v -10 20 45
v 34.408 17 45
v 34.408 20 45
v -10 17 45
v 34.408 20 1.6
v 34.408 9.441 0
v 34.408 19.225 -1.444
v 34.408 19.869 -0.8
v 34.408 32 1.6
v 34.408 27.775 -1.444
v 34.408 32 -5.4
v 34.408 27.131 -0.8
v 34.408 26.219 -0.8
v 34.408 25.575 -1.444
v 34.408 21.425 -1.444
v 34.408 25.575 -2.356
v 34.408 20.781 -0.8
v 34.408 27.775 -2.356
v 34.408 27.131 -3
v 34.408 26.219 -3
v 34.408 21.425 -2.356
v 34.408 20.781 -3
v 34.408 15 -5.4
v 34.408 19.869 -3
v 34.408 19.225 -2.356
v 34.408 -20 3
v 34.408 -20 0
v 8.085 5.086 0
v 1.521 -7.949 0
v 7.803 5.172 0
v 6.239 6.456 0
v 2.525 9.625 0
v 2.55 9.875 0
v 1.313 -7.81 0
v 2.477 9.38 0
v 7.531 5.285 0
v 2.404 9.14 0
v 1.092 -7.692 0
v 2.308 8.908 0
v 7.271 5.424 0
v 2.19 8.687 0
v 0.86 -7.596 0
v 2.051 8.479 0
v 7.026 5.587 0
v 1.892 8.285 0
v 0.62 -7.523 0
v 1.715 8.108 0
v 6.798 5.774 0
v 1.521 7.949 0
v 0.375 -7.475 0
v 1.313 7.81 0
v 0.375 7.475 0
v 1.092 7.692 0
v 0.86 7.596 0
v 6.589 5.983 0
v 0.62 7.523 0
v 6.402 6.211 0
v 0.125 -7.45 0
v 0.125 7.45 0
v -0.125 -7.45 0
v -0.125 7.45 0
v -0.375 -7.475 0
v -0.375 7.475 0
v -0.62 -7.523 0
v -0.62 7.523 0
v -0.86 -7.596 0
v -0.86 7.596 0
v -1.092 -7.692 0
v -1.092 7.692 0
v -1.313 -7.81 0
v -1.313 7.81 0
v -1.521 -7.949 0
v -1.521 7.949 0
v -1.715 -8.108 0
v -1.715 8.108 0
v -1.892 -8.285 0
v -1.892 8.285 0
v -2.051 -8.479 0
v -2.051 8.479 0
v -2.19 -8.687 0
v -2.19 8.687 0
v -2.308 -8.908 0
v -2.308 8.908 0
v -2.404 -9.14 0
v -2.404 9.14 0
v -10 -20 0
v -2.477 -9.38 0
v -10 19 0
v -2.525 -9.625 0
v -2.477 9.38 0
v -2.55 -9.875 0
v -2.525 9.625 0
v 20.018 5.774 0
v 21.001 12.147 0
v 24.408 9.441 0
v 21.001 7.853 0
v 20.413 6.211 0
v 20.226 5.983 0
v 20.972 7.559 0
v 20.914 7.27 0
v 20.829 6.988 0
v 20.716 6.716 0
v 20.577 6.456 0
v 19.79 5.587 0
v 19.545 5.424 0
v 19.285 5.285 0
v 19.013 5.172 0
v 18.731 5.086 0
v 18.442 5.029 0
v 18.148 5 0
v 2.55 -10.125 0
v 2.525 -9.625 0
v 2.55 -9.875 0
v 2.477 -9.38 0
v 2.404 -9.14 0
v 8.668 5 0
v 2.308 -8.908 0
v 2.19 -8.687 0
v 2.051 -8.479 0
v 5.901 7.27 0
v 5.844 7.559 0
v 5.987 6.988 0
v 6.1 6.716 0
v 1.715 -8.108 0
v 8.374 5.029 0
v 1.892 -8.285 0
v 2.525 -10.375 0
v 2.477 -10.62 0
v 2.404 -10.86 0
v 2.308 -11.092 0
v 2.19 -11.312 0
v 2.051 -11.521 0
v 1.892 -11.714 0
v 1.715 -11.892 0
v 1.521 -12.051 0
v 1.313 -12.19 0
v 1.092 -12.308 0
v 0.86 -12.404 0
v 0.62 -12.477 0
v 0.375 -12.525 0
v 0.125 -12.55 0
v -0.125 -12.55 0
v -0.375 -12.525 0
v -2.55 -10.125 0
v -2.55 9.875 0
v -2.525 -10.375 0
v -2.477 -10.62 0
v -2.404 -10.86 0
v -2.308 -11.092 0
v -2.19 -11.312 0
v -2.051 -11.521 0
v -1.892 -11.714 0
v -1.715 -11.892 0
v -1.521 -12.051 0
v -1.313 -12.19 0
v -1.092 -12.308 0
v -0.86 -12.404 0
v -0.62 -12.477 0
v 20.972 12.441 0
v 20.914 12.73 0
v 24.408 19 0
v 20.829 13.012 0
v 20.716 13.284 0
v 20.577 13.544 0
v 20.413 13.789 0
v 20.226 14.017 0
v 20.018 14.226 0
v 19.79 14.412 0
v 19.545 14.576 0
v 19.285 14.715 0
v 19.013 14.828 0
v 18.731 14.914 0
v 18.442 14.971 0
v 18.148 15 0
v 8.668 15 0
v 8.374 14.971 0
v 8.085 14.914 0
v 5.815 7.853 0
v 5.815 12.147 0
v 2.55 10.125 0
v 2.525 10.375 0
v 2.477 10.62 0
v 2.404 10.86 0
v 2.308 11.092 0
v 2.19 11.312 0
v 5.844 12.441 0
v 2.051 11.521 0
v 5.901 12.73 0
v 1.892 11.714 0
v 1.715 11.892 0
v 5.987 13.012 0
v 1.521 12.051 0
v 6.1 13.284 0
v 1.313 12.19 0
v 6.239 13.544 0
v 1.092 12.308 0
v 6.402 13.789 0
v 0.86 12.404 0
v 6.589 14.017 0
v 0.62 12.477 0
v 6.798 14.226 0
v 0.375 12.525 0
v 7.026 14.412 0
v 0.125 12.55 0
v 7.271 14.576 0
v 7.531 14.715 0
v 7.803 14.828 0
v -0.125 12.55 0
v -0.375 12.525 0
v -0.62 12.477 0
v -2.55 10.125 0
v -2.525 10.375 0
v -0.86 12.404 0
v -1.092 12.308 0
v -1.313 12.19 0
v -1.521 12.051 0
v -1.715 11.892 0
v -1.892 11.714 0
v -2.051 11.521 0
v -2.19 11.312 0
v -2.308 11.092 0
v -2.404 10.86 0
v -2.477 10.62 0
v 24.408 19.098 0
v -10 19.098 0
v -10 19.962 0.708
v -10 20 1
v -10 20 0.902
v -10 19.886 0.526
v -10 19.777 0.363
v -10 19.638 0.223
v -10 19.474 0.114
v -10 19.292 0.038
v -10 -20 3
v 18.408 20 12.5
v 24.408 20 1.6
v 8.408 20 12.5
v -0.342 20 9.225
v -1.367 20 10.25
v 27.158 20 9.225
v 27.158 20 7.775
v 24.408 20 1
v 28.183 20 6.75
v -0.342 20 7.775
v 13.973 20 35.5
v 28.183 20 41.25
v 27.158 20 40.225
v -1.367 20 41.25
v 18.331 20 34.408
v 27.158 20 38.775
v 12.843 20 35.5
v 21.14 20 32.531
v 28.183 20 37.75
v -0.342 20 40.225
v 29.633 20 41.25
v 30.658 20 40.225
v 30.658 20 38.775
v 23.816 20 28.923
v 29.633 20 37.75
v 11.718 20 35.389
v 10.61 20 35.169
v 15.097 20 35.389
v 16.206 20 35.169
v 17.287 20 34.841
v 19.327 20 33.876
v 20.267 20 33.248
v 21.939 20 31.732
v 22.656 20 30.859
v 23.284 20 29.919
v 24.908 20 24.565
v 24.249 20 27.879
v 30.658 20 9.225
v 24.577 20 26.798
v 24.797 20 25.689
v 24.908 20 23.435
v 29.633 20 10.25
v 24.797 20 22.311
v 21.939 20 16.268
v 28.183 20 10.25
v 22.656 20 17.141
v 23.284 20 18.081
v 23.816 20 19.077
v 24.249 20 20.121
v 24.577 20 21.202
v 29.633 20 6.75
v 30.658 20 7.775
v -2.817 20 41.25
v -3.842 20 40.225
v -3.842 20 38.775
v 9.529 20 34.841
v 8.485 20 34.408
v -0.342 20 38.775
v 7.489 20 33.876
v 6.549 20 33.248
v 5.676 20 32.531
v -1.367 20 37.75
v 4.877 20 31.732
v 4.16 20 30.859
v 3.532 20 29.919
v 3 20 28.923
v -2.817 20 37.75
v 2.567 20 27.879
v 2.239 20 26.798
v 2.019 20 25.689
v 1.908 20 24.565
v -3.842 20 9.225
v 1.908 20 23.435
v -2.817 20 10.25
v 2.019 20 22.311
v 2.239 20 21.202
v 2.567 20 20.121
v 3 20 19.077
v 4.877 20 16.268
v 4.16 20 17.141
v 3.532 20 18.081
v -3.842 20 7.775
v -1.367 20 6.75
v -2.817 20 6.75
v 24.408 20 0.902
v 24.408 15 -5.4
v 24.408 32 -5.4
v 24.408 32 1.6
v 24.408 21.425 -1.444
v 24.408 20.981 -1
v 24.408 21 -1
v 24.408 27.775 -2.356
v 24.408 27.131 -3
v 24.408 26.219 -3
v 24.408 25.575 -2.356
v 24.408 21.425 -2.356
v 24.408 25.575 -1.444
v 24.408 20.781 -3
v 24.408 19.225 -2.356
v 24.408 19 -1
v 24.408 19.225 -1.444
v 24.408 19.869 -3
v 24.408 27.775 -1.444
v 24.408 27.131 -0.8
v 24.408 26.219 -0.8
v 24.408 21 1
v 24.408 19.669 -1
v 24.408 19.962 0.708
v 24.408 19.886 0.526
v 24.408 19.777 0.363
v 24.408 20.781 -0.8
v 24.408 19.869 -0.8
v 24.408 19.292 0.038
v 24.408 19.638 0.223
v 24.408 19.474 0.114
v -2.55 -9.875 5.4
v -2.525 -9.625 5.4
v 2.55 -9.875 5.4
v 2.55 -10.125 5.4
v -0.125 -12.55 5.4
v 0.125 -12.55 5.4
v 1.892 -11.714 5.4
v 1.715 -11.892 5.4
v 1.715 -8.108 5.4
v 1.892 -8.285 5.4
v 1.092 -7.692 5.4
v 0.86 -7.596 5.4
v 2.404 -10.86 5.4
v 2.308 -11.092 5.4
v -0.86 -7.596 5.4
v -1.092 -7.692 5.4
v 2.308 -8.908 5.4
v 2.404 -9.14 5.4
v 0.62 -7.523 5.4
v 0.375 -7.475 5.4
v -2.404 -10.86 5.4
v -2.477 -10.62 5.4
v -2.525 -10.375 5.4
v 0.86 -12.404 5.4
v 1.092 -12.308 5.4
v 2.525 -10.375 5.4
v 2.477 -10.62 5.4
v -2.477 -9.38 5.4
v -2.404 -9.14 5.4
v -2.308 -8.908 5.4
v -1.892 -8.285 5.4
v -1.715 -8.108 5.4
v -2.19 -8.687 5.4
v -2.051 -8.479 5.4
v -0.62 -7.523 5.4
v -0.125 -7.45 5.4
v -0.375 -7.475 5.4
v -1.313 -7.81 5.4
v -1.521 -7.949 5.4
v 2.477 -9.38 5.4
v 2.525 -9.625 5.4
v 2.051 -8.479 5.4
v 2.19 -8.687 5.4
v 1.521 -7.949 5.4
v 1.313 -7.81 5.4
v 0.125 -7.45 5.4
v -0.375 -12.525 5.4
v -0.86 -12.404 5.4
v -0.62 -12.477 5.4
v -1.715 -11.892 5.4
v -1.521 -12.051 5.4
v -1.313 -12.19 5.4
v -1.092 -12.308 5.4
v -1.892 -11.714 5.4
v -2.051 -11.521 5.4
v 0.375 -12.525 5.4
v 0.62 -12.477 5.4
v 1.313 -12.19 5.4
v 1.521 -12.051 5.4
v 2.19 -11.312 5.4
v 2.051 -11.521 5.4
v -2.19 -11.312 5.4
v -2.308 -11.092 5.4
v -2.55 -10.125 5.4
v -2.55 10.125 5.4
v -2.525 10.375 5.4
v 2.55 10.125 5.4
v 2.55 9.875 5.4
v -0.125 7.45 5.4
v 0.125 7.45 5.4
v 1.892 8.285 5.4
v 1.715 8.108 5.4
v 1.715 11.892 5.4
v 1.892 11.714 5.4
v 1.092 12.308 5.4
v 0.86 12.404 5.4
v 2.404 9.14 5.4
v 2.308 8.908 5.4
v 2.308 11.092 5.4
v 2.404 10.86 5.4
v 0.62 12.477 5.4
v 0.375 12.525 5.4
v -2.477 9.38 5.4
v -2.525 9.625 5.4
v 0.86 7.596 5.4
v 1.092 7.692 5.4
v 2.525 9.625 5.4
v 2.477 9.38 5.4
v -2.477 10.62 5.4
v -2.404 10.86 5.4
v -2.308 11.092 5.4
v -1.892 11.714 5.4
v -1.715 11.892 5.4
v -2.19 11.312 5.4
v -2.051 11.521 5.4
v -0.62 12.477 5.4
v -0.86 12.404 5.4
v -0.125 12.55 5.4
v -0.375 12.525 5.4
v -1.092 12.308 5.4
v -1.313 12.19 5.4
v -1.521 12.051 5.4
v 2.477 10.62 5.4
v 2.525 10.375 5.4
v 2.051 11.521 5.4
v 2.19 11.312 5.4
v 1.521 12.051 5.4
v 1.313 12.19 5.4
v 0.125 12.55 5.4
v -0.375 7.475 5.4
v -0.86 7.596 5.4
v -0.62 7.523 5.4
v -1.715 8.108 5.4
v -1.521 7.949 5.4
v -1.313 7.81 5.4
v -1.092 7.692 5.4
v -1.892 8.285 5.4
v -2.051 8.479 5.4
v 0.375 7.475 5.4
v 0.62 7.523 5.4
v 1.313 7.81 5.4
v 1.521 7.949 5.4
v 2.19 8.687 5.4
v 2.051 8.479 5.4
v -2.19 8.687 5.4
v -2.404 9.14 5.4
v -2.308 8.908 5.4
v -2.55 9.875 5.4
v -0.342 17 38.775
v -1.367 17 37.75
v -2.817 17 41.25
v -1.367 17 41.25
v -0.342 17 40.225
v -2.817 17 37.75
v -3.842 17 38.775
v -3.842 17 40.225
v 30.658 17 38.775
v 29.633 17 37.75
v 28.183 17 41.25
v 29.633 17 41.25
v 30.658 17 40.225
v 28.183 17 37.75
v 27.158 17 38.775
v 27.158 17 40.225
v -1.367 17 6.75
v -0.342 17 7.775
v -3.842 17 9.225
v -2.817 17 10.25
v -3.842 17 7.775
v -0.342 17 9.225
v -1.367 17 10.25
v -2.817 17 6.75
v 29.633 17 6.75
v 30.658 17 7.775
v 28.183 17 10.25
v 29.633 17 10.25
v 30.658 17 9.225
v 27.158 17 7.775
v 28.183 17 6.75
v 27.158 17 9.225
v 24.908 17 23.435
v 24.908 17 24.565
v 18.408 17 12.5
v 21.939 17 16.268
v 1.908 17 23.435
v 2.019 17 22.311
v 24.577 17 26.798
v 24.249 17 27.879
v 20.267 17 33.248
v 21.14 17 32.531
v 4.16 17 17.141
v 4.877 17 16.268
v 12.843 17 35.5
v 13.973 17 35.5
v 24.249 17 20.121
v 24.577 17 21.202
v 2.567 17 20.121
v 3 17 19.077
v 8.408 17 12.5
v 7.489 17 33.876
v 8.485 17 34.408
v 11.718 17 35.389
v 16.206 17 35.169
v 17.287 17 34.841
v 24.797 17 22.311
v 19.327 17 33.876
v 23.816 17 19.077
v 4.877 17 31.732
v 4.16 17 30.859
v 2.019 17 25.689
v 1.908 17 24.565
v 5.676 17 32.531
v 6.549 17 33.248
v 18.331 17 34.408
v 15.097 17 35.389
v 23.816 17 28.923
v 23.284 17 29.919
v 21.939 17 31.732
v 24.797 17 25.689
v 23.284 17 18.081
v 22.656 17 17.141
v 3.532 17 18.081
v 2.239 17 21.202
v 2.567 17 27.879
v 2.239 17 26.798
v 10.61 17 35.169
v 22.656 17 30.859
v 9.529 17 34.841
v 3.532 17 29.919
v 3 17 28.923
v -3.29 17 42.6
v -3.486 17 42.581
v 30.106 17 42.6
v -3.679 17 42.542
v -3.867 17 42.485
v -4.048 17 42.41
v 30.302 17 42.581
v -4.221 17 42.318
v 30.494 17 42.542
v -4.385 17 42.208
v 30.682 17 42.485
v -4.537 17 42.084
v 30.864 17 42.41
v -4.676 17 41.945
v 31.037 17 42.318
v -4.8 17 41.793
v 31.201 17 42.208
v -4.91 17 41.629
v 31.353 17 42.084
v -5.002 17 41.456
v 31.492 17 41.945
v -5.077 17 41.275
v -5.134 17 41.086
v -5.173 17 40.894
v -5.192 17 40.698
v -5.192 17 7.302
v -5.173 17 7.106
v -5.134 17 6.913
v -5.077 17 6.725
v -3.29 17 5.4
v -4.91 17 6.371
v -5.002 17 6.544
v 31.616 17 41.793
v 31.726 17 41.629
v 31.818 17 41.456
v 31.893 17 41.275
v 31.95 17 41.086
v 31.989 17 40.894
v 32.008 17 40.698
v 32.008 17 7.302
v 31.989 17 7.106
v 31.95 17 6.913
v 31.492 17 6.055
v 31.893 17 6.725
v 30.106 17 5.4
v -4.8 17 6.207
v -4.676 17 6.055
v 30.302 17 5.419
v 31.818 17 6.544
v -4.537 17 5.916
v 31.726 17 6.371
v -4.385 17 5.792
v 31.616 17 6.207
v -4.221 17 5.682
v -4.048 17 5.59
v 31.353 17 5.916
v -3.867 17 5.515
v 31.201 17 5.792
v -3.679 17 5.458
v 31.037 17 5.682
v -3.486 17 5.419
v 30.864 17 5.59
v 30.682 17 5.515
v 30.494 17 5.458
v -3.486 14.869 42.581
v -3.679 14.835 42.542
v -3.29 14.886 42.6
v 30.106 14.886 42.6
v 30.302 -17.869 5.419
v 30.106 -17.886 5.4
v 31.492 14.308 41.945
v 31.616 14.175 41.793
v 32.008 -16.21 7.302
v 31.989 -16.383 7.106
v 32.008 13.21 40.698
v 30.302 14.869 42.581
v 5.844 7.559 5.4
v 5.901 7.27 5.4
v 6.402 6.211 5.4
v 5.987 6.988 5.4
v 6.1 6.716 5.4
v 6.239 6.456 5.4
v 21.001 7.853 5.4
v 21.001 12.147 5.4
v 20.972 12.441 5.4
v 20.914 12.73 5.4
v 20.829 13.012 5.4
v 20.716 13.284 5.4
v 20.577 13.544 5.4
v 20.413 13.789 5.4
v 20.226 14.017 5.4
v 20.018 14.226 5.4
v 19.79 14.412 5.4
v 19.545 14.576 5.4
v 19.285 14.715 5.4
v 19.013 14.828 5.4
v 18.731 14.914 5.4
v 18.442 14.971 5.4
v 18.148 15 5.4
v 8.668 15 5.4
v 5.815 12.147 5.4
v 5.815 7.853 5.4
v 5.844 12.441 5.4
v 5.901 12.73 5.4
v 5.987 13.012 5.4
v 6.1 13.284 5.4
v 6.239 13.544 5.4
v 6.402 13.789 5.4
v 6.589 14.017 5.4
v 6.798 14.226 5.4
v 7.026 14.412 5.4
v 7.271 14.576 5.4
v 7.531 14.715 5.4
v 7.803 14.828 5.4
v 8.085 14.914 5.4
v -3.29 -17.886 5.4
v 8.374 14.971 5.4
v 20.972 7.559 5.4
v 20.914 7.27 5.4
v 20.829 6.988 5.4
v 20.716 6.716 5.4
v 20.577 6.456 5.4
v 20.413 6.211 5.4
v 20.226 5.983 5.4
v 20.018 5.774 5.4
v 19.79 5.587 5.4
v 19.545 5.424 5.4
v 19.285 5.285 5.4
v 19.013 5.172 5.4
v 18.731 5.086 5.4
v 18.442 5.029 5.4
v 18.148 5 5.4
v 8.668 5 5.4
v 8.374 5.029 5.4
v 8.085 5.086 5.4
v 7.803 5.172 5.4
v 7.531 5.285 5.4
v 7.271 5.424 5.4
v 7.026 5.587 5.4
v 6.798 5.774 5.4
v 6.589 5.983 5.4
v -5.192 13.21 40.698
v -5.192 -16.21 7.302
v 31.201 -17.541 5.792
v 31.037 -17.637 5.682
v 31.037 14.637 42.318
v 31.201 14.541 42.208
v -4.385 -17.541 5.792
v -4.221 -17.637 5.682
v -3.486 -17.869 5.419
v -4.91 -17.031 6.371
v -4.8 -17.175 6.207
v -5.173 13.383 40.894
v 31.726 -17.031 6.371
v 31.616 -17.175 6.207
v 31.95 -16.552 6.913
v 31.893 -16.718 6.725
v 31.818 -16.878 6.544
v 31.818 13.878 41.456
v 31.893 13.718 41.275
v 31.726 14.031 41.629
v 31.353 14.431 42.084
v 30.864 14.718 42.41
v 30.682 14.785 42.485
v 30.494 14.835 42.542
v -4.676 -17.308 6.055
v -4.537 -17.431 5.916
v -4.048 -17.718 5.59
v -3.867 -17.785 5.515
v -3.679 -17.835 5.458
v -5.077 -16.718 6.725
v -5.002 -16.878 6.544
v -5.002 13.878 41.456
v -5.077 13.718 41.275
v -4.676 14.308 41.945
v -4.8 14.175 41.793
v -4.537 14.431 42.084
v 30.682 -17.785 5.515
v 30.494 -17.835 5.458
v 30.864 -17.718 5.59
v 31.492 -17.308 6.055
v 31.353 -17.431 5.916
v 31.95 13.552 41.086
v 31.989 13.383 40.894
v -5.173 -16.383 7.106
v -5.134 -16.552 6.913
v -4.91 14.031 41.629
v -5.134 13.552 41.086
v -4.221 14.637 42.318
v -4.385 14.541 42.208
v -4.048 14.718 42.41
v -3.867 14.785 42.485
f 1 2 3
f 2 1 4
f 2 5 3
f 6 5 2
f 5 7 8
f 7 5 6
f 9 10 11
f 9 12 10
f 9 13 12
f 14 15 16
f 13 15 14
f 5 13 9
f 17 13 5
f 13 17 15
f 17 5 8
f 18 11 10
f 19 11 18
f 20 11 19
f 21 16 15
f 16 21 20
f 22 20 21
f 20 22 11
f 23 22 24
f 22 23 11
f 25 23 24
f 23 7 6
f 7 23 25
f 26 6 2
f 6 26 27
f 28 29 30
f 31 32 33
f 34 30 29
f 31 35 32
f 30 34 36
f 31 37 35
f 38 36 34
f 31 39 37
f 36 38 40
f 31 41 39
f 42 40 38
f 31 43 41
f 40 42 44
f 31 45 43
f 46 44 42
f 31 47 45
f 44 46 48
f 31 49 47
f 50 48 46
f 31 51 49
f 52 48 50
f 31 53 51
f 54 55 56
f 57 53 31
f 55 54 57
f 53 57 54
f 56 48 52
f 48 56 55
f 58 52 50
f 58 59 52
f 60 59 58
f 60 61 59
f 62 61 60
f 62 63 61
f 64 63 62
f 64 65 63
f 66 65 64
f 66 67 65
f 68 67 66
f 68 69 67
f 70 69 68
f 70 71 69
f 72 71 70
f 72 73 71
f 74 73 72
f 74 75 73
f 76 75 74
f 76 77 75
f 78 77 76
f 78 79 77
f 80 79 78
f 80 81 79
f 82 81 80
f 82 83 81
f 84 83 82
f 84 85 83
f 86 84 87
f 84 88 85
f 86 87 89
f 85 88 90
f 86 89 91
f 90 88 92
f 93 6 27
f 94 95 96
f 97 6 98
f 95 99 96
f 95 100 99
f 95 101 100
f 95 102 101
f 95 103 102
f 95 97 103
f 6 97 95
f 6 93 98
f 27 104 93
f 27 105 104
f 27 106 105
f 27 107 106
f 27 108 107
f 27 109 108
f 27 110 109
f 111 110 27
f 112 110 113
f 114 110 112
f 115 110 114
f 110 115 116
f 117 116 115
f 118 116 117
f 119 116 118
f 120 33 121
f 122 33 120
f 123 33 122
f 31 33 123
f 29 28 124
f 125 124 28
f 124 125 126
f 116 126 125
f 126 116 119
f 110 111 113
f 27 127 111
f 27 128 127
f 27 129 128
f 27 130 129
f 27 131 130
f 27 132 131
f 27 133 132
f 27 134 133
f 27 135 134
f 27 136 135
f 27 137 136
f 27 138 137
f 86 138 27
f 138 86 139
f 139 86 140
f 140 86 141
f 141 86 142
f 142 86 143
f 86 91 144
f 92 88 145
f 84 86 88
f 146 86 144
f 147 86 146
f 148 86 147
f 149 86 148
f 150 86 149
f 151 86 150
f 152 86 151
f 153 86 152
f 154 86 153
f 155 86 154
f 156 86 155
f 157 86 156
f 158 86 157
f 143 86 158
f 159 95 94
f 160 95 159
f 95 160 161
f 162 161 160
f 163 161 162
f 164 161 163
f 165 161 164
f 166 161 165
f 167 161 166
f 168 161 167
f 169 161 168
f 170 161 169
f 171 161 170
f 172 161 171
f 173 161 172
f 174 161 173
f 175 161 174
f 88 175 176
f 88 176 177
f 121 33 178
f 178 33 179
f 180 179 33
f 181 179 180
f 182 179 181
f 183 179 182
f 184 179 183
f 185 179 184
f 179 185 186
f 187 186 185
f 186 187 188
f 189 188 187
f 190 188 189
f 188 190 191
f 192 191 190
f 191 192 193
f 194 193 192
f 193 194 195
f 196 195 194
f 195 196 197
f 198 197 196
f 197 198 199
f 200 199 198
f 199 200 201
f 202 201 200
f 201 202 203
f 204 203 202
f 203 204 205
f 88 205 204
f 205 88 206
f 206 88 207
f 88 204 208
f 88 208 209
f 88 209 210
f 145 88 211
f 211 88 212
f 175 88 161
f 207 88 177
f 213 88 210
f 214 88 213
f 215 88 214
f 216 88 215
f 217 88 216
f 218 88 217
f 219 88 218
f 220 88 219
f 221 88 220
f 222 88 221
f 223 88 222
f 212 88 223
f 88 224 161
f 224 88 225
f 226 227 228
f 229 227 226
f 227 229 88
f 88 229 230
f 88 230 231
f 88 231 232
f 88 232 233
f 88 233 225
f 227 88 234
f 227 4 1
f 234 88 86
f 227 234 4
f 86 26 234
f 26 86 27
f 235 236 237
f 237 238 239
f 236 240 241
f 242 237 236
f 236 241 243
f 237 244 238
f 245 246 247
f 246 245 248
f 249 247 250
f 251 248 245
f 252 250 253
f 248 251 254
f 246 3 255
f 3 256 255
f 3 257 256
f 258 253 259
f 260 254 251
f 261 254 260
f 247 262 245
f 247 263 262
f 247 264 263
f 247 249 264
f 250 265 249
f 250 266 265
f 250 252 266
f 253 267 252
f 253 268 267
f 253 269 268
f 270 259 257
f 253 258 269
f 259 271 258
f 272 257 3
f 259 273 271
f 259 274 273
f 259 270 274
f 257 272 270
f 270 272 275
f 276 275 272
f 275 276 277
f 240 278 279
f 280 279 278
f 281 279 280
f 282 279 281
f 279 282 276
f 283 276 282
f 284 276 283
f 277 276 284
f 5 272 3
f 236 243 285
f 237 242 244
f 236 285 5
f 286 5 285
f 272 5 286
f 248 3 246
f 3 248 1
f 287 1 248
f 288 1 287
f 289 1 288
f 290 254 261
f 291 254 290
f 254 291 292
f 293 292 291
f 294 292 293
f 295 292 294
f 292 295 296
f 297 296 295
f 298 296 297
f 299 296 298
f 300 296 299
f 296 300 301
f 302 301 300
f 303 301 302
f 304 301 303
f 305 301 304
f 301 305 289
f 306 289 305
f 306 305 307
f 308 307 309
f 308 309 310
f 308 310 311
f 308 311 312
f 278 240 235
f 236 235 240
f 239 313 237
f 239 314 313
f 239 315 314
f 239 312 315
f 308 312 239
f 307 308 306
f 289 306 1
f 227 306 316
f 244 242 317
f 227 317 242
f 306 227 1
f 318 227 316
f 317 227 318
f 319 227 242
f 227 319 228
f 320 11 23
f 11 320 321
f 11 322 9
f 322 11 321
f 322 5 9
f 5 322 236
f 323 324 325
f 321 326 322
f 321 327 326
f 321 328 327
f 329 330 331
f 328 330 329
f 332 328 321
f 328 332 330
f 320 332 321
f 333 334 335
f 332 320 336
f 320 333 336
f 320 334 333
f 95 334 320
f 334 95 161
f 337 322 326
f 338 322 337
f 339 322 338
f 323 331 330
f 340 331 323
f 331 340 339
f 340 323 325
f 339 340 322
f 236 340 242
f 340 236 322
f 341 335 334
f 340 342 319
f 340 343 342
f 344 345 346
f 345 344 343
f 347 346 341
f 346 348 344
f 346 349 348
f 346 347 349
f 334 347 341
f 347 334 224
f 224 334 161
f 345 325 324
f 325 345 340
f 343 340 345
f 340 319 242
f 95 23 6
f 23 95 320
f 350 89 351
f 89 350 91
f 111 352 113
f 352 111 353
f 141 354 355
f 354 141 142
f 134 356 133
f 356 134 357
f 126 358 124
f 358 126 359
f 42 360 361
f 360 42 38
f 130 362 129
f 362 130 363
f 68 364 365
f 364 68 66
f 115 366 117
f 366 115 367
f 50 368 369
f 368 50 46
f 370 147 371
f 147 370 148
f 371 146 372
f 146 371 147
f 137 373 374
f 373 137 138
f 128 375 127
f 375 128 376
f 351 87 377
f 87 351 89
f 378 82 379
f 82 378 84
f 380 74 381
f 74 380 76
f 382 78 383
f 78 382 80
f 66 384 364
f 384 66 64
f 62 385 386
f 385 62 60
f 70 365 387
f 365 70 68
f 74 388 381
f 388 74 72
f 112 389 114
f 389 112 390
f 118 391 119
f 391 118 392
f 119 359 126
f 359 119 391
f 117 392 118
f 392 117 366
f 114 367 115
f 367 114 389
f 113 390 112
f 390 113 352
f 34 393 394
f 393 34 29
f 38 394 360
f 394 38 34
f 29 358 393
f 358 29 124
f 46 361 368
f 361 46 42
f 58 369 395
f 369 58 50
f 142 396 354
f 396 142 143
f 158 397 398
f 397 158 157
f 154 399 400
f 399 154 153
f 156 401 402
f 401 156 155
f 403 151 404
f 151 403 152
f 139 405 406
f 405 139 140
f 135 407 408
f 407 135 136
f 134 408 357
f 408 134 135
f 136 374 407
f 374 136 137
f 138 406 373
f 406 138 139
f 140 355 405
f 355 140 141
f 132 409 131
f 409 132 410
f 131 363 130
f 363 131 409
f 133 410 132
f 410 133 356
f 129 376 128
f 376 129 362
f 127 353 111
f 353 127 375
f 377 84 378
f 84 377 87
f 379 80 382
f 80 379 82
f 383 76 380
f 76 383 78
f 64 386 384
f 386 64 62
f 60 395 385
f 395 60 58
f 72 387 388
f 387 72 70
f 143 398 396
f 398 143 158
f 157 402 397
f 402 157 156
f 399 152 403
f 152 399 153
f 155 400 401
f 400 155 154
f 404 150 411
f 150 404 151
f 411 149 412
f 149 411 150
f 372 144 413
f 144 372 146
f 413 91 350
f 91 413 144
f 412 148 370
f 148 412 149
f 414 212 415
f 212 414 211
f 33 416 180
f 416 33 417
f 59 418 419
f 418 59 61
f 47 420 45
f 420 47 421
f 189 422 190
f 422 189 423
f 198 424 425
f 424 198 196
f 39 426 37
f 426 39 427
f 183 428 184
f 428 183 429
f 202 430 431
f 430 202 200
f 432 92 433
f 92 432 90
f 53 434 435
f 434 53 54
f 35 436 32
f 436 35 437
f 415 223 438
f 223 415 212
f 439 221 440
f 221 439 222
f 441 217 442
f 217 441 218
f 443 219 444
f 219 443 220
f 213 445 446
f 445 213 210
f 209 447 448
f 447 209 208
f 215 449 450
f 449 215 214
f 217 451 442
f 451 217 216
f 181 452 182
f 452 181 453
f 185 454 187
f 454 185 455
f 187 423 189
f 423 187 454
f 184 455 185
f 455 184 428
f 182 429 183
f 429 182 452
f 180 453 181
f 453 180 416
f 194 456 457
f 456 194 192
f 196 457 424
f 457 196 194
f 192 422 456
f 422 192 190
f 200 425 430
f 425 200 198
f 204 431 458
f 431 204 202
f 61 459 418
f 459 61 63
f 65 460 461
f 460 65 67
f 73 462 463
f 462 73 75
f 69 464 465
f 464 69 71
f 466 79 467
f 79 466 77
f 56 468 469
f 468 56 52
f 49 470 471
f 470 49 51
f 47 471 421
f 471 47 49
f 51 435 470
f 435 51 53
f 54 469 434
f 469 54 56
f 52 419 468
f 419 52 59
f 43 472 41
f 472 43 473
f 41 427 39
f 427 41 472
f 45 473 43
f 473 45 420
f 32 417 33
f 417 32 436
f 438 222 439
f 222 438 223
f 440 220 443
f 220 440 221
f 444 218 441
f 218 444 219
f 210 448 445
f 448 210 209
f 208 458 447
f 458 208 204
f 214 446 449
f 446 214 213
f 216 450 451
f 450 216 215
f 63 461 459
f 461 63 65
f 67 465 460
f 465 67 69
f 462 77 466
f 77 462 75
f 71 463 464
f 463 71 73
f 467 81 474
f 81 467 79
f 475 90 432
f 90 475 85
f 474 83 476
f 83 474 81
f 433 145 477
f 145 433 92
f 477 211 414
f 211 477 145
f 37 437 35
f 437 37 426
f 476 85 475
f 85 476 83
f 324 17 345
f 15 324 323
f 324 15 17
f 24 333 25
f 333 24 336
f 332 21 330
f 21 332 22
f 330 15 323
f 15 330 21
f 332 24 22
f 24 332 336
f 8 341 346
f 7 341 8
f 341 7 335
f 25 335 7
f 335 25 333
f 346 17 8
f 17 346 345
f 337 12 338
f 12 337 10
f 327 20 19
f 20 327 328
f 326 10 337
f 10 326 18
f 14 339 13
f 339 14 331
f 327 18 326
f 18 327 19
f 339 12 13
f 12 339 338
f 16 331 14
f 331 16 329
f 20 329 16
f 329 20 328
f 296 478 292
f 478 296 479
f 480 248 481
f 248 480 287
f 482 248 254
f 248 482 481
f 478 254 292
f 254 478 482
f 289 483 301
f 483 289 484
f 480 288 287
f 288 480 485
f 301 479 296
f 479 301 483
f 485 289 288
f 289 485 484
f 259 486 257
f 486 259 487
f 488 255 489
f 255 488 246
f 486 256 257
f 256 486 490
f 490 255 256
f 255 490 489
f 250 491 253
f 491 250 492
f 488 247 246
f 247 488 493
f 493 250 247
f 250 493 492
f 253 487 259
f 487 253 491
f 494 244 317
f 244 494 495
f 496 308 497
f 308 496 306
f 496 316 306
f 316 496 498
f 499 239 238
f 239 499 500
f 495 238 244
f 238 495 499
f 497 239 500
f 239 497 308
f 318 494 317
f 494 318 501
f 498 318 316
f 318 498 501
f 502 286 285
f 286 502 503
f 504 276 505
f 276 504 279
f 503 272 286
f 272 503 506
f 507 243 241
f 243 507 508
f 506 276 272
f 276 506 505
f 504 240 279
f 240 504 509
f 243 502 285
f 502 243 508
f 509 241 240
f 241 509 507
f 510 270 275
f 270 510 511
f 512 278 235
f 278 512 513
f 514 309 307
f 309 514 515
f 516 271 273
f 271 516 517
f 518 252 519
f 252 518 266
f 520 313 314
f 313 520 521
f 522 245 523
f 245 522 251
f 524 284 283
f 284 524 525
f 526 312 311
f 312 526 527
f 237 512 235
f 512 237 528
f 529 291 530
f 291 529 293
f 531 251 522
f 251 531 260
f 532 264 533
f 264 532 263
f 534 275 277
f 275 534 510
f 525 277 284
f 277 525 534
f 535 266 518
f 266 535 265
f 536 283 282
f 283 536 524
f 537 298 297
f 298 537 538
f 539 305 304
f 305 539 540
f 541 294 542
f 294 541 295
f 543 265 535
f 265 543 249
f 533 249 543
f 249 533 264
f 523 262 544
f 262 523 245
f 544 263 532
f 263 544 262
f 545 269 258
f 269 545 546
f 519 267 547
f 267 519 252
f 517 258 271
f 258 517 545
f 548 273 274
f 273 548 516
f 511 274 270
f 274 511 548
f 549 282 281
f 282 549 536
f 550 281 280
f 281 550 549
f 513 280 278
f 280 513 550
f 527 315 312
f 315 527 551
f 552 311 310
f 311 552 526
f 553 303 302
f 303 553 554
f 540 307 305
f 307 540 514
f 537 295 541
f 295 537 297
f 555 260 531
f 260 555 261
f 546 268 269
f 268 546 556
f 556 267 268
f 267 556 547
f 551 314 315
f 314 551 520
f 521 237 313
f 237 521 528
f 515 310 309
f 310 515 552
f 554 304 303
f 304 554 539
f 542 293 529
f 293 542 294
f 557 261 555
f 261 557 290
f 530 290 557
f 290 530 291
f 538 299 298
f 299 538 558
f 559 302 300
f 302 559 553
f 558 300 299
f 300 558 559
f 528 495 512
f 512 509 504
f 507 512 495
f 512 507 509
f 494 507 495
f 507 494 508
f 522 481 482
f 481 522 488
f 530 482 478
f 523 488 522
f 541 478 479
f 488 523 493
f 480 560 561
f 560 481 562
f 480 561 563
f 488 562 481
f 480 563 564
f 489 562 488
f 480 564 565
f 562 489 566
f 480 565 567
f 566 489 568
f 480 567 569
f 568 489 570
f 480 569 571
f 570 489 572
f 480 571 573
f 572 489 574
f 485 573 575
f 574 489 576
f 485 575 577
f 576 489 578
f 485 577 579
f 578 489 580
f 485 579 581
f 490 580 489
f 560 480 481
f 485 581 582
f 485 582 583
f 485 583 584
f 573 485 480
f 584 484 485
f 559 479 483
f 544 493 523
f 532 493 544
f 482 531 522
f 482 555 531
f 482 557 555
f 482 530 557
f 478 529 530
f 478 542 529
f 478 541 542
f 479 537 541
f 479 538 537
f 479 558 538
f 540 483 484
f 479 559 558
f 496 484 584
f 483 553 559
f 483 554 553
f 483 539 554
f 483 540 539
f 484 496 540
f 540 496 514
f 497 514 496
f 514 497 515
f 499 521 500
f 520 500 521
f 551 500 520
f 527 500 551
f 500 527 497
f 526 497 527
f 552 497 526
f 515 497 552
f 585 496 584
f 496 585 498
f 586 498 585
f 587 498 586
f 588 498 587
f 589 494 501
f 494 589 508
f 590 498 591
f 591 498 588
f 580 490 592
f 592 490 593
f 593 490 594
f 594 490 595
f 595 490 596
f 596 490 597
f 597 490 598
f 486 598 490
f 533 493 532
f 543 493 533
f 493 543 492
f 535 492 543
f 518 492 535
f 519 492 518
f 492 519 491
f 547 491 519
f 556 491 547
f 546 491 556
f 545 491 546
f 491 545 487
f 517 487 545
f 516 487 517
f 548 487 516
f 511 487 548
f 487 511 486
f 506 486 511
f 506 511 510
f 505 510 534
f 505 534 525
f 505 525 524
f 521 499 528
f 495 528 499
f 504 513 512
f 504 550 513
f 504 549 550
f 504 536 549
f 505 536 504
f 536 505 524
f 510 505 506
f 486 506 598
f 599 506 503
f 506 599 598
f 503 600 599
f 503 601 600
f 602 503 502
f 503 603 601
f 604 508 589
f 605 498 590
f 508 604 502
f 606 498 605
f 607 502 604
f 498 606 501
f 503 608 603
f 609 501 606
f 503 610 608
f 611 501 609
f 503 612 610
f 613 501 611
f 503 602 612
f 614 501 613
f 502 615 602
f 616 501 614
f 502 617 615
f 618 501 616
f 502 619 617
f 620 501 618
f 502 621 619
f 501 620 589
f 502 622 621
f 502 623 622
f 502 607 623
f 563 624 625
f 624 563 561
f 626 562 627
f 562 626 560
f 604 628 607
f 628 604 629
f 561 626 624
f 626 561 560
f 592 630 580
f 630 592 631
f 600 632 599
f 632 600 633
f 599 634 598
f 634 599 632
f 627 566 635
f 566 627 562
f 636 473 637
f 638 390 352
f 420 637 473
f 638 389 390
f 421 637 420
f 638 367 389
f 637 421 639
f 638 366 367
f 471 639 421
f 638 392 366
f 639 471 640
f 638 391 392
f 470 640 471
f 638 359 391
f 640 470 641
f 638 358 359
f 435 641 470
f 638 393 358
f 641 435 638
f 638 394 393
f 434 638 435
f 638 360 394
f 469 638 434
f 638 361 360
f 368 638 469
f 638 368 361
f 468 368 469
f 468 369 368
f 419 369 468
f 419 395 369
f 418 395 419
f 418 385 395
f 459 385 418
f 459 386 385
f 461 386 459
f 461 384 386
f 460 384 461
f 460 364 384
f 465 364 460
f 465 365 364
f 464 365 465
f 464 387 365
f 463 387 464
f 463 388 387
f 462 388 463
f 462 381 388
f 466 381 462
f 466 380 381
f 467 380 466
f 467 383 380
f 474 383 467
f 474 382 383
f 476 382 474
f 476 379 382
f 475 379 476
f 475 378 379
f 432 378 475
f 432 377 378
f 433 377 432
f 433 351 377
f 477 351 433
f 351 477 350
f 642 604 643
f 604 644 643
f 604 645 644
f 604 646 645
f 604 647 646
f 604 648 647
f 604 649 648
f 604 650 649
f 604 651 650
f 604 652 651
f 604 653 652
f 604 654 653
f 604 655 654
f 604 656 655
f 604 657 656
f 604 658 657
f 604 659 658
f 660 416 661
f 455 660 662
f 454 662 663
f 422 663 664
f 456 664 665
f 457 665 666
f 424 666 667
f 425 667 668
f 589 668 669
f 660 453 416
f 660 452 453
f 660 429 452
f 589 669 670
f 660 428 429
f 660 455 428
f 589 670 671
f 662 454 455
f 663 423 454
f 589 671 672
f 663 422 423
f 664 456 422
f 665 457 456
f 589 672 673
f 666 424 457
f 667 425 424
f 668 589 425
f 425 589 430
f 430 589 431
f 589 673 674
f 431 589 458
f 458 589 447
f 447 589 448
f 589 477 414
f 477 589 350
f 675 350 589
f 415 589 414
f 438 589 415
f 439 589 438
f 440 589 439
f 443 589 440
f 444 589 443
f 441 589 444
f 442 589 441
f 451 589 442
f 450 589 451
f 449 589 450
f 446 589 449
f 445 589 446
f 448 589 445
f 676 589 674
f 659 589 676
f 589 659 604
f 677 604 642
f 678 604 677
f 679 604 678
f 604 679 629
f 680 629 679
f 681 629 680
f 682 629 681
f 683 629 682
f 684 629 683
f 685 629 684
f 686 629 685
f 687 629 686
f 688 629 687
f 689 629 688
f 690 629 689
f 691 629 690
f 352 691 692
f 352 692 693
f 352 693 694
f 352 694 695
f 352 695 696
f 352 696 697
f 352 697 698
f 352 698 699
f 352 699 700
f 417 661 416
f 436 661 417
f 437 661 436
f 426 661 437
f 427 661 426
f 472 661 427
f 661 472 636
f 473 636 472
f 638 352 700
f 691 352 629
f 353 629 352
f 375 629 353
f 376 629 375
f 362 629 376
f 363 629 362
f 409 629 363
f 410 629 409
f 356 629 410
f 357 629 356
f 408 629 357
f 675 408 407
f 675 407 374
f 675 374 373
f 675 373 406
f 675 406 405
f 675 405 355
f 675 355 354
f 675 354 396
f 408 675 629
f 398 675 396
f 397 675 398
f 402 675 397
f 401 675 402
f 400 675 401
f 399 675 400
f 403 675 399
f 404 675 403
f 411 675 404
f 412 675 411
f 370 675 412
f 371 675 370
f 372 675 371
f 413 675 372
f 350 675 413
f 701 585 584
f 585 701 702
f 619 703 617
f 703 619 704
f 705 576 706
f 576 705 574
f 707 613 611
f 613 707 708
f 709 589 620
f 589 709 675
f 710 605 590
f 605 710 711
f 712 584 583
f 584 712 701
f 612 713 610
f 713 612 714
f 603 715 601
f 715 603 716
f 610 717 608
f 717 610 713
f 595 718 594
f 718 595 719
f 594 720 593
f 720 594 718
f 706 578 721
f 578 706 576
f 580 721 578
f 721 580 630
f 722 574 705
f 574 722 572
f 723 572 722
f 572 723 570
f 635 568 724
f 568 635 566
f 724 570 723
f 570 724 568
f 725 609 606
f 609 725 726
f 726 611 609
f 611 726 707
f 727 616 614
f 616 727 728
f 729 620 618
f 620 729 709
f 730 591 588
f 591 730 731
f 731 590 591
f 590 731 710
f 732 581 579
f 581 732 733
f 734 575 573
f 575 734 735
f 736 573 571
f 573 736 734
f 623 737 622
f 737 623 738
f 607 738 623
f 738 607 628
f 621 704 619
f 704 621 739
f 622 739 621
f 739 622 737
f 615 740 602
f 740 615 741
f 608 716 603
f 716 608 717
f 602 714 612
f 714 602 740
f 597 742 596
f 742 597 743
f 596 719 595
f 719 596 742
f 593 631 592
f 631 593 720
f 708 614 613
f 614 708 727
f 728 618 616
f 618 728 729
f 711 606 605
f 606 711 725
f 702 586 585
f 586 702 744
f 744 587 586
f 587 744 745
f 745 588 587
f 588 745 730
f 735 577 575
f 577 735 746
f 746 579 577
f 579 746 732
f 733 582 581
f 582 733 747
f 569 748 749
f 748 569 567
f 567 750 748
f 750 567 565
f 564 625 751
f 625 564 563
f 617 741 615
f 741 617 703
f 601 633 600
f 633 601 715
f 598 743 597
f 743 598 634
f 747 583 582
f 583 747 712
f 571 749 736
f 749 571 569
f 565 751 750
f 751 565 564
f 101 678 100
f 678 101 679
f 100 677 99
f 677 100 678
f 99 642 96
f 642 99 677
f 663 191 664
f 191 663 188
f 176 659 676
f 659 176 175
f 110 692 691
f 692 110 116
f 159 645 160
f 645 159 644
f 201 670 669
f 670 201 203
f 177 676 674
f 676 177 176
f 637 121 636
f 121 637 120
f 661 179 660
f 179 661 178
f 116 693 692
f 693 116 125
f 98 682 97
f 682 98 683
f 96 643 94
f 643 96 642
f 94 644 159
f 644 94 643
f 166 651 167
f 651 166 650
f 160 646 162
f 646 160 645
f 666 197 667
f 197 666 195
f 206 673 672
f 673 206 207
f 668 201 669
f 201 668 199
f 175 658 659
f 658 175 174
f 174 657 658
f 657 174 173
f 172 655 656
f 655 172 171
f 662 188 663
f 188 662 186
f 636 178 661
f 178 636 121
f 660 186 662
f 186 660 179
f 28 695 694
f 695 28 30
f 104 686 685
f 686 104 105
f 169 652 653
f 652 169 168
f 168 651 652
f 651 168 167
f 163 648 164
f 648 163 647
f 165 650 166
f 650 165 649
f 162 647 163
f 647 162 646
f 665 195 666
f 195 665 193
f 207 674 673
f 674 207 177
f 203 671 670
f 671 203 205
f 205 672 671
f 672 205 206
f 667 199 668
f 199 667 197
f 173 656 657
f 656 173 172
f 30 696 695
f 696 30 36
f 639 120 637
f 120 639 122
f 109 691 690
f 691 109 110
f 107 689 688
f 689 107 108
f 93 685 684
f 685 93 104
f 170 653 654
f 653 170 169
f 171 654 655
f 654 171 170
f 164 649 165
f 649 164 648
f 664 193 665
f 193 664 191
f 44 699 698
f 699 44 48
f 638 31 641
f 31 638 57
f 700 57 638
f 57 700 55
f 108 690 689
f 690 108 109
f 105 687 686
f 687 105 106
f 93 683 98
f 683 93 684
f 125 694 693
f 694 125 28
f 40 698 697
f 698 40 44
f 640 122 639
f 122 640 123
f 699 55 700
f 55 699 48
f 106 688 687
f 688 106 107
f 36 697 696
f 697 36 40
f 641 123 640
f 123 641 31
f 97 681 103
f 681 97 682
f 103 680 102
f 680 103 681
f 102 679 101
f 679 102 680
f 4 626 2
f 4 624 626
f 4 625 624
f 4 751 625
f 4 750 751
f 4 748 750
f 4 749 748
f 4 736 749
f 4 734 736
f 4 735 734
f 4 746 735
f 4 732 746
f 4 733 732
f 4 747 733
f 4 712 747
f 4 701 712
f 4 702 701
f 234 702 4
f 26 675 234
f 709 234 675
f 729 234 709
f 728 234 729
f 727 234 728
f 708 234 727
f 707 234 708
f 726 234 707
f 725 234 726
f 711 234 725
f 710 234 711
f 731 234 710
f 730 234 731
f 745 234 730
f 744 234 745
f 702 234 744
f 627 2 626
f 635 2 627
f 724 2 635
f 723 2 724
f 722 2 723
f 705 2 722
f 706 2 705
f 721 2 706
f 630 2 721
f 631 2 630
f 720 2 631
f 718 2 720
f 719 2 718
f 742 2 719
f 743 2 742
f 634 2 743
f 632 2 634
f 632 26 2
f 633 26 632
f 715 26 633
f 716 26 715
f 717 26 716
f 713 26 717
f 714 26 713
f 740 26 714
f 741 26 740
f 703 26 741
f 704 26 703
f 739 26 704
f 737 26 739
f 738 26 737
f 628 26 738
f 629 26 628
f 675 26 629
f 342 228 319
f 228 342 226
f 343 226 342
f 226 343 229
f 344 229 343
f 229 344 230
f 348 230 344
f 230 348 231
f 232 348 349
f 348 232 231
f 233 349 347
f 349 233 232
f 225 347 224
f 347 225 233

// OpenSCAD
include <../lib/util.scad>;
include <../config.scad>;
use <../sketch-for-simpler.scad>;

rotate([0,90,0]) {
  x_min_endcap();
}
